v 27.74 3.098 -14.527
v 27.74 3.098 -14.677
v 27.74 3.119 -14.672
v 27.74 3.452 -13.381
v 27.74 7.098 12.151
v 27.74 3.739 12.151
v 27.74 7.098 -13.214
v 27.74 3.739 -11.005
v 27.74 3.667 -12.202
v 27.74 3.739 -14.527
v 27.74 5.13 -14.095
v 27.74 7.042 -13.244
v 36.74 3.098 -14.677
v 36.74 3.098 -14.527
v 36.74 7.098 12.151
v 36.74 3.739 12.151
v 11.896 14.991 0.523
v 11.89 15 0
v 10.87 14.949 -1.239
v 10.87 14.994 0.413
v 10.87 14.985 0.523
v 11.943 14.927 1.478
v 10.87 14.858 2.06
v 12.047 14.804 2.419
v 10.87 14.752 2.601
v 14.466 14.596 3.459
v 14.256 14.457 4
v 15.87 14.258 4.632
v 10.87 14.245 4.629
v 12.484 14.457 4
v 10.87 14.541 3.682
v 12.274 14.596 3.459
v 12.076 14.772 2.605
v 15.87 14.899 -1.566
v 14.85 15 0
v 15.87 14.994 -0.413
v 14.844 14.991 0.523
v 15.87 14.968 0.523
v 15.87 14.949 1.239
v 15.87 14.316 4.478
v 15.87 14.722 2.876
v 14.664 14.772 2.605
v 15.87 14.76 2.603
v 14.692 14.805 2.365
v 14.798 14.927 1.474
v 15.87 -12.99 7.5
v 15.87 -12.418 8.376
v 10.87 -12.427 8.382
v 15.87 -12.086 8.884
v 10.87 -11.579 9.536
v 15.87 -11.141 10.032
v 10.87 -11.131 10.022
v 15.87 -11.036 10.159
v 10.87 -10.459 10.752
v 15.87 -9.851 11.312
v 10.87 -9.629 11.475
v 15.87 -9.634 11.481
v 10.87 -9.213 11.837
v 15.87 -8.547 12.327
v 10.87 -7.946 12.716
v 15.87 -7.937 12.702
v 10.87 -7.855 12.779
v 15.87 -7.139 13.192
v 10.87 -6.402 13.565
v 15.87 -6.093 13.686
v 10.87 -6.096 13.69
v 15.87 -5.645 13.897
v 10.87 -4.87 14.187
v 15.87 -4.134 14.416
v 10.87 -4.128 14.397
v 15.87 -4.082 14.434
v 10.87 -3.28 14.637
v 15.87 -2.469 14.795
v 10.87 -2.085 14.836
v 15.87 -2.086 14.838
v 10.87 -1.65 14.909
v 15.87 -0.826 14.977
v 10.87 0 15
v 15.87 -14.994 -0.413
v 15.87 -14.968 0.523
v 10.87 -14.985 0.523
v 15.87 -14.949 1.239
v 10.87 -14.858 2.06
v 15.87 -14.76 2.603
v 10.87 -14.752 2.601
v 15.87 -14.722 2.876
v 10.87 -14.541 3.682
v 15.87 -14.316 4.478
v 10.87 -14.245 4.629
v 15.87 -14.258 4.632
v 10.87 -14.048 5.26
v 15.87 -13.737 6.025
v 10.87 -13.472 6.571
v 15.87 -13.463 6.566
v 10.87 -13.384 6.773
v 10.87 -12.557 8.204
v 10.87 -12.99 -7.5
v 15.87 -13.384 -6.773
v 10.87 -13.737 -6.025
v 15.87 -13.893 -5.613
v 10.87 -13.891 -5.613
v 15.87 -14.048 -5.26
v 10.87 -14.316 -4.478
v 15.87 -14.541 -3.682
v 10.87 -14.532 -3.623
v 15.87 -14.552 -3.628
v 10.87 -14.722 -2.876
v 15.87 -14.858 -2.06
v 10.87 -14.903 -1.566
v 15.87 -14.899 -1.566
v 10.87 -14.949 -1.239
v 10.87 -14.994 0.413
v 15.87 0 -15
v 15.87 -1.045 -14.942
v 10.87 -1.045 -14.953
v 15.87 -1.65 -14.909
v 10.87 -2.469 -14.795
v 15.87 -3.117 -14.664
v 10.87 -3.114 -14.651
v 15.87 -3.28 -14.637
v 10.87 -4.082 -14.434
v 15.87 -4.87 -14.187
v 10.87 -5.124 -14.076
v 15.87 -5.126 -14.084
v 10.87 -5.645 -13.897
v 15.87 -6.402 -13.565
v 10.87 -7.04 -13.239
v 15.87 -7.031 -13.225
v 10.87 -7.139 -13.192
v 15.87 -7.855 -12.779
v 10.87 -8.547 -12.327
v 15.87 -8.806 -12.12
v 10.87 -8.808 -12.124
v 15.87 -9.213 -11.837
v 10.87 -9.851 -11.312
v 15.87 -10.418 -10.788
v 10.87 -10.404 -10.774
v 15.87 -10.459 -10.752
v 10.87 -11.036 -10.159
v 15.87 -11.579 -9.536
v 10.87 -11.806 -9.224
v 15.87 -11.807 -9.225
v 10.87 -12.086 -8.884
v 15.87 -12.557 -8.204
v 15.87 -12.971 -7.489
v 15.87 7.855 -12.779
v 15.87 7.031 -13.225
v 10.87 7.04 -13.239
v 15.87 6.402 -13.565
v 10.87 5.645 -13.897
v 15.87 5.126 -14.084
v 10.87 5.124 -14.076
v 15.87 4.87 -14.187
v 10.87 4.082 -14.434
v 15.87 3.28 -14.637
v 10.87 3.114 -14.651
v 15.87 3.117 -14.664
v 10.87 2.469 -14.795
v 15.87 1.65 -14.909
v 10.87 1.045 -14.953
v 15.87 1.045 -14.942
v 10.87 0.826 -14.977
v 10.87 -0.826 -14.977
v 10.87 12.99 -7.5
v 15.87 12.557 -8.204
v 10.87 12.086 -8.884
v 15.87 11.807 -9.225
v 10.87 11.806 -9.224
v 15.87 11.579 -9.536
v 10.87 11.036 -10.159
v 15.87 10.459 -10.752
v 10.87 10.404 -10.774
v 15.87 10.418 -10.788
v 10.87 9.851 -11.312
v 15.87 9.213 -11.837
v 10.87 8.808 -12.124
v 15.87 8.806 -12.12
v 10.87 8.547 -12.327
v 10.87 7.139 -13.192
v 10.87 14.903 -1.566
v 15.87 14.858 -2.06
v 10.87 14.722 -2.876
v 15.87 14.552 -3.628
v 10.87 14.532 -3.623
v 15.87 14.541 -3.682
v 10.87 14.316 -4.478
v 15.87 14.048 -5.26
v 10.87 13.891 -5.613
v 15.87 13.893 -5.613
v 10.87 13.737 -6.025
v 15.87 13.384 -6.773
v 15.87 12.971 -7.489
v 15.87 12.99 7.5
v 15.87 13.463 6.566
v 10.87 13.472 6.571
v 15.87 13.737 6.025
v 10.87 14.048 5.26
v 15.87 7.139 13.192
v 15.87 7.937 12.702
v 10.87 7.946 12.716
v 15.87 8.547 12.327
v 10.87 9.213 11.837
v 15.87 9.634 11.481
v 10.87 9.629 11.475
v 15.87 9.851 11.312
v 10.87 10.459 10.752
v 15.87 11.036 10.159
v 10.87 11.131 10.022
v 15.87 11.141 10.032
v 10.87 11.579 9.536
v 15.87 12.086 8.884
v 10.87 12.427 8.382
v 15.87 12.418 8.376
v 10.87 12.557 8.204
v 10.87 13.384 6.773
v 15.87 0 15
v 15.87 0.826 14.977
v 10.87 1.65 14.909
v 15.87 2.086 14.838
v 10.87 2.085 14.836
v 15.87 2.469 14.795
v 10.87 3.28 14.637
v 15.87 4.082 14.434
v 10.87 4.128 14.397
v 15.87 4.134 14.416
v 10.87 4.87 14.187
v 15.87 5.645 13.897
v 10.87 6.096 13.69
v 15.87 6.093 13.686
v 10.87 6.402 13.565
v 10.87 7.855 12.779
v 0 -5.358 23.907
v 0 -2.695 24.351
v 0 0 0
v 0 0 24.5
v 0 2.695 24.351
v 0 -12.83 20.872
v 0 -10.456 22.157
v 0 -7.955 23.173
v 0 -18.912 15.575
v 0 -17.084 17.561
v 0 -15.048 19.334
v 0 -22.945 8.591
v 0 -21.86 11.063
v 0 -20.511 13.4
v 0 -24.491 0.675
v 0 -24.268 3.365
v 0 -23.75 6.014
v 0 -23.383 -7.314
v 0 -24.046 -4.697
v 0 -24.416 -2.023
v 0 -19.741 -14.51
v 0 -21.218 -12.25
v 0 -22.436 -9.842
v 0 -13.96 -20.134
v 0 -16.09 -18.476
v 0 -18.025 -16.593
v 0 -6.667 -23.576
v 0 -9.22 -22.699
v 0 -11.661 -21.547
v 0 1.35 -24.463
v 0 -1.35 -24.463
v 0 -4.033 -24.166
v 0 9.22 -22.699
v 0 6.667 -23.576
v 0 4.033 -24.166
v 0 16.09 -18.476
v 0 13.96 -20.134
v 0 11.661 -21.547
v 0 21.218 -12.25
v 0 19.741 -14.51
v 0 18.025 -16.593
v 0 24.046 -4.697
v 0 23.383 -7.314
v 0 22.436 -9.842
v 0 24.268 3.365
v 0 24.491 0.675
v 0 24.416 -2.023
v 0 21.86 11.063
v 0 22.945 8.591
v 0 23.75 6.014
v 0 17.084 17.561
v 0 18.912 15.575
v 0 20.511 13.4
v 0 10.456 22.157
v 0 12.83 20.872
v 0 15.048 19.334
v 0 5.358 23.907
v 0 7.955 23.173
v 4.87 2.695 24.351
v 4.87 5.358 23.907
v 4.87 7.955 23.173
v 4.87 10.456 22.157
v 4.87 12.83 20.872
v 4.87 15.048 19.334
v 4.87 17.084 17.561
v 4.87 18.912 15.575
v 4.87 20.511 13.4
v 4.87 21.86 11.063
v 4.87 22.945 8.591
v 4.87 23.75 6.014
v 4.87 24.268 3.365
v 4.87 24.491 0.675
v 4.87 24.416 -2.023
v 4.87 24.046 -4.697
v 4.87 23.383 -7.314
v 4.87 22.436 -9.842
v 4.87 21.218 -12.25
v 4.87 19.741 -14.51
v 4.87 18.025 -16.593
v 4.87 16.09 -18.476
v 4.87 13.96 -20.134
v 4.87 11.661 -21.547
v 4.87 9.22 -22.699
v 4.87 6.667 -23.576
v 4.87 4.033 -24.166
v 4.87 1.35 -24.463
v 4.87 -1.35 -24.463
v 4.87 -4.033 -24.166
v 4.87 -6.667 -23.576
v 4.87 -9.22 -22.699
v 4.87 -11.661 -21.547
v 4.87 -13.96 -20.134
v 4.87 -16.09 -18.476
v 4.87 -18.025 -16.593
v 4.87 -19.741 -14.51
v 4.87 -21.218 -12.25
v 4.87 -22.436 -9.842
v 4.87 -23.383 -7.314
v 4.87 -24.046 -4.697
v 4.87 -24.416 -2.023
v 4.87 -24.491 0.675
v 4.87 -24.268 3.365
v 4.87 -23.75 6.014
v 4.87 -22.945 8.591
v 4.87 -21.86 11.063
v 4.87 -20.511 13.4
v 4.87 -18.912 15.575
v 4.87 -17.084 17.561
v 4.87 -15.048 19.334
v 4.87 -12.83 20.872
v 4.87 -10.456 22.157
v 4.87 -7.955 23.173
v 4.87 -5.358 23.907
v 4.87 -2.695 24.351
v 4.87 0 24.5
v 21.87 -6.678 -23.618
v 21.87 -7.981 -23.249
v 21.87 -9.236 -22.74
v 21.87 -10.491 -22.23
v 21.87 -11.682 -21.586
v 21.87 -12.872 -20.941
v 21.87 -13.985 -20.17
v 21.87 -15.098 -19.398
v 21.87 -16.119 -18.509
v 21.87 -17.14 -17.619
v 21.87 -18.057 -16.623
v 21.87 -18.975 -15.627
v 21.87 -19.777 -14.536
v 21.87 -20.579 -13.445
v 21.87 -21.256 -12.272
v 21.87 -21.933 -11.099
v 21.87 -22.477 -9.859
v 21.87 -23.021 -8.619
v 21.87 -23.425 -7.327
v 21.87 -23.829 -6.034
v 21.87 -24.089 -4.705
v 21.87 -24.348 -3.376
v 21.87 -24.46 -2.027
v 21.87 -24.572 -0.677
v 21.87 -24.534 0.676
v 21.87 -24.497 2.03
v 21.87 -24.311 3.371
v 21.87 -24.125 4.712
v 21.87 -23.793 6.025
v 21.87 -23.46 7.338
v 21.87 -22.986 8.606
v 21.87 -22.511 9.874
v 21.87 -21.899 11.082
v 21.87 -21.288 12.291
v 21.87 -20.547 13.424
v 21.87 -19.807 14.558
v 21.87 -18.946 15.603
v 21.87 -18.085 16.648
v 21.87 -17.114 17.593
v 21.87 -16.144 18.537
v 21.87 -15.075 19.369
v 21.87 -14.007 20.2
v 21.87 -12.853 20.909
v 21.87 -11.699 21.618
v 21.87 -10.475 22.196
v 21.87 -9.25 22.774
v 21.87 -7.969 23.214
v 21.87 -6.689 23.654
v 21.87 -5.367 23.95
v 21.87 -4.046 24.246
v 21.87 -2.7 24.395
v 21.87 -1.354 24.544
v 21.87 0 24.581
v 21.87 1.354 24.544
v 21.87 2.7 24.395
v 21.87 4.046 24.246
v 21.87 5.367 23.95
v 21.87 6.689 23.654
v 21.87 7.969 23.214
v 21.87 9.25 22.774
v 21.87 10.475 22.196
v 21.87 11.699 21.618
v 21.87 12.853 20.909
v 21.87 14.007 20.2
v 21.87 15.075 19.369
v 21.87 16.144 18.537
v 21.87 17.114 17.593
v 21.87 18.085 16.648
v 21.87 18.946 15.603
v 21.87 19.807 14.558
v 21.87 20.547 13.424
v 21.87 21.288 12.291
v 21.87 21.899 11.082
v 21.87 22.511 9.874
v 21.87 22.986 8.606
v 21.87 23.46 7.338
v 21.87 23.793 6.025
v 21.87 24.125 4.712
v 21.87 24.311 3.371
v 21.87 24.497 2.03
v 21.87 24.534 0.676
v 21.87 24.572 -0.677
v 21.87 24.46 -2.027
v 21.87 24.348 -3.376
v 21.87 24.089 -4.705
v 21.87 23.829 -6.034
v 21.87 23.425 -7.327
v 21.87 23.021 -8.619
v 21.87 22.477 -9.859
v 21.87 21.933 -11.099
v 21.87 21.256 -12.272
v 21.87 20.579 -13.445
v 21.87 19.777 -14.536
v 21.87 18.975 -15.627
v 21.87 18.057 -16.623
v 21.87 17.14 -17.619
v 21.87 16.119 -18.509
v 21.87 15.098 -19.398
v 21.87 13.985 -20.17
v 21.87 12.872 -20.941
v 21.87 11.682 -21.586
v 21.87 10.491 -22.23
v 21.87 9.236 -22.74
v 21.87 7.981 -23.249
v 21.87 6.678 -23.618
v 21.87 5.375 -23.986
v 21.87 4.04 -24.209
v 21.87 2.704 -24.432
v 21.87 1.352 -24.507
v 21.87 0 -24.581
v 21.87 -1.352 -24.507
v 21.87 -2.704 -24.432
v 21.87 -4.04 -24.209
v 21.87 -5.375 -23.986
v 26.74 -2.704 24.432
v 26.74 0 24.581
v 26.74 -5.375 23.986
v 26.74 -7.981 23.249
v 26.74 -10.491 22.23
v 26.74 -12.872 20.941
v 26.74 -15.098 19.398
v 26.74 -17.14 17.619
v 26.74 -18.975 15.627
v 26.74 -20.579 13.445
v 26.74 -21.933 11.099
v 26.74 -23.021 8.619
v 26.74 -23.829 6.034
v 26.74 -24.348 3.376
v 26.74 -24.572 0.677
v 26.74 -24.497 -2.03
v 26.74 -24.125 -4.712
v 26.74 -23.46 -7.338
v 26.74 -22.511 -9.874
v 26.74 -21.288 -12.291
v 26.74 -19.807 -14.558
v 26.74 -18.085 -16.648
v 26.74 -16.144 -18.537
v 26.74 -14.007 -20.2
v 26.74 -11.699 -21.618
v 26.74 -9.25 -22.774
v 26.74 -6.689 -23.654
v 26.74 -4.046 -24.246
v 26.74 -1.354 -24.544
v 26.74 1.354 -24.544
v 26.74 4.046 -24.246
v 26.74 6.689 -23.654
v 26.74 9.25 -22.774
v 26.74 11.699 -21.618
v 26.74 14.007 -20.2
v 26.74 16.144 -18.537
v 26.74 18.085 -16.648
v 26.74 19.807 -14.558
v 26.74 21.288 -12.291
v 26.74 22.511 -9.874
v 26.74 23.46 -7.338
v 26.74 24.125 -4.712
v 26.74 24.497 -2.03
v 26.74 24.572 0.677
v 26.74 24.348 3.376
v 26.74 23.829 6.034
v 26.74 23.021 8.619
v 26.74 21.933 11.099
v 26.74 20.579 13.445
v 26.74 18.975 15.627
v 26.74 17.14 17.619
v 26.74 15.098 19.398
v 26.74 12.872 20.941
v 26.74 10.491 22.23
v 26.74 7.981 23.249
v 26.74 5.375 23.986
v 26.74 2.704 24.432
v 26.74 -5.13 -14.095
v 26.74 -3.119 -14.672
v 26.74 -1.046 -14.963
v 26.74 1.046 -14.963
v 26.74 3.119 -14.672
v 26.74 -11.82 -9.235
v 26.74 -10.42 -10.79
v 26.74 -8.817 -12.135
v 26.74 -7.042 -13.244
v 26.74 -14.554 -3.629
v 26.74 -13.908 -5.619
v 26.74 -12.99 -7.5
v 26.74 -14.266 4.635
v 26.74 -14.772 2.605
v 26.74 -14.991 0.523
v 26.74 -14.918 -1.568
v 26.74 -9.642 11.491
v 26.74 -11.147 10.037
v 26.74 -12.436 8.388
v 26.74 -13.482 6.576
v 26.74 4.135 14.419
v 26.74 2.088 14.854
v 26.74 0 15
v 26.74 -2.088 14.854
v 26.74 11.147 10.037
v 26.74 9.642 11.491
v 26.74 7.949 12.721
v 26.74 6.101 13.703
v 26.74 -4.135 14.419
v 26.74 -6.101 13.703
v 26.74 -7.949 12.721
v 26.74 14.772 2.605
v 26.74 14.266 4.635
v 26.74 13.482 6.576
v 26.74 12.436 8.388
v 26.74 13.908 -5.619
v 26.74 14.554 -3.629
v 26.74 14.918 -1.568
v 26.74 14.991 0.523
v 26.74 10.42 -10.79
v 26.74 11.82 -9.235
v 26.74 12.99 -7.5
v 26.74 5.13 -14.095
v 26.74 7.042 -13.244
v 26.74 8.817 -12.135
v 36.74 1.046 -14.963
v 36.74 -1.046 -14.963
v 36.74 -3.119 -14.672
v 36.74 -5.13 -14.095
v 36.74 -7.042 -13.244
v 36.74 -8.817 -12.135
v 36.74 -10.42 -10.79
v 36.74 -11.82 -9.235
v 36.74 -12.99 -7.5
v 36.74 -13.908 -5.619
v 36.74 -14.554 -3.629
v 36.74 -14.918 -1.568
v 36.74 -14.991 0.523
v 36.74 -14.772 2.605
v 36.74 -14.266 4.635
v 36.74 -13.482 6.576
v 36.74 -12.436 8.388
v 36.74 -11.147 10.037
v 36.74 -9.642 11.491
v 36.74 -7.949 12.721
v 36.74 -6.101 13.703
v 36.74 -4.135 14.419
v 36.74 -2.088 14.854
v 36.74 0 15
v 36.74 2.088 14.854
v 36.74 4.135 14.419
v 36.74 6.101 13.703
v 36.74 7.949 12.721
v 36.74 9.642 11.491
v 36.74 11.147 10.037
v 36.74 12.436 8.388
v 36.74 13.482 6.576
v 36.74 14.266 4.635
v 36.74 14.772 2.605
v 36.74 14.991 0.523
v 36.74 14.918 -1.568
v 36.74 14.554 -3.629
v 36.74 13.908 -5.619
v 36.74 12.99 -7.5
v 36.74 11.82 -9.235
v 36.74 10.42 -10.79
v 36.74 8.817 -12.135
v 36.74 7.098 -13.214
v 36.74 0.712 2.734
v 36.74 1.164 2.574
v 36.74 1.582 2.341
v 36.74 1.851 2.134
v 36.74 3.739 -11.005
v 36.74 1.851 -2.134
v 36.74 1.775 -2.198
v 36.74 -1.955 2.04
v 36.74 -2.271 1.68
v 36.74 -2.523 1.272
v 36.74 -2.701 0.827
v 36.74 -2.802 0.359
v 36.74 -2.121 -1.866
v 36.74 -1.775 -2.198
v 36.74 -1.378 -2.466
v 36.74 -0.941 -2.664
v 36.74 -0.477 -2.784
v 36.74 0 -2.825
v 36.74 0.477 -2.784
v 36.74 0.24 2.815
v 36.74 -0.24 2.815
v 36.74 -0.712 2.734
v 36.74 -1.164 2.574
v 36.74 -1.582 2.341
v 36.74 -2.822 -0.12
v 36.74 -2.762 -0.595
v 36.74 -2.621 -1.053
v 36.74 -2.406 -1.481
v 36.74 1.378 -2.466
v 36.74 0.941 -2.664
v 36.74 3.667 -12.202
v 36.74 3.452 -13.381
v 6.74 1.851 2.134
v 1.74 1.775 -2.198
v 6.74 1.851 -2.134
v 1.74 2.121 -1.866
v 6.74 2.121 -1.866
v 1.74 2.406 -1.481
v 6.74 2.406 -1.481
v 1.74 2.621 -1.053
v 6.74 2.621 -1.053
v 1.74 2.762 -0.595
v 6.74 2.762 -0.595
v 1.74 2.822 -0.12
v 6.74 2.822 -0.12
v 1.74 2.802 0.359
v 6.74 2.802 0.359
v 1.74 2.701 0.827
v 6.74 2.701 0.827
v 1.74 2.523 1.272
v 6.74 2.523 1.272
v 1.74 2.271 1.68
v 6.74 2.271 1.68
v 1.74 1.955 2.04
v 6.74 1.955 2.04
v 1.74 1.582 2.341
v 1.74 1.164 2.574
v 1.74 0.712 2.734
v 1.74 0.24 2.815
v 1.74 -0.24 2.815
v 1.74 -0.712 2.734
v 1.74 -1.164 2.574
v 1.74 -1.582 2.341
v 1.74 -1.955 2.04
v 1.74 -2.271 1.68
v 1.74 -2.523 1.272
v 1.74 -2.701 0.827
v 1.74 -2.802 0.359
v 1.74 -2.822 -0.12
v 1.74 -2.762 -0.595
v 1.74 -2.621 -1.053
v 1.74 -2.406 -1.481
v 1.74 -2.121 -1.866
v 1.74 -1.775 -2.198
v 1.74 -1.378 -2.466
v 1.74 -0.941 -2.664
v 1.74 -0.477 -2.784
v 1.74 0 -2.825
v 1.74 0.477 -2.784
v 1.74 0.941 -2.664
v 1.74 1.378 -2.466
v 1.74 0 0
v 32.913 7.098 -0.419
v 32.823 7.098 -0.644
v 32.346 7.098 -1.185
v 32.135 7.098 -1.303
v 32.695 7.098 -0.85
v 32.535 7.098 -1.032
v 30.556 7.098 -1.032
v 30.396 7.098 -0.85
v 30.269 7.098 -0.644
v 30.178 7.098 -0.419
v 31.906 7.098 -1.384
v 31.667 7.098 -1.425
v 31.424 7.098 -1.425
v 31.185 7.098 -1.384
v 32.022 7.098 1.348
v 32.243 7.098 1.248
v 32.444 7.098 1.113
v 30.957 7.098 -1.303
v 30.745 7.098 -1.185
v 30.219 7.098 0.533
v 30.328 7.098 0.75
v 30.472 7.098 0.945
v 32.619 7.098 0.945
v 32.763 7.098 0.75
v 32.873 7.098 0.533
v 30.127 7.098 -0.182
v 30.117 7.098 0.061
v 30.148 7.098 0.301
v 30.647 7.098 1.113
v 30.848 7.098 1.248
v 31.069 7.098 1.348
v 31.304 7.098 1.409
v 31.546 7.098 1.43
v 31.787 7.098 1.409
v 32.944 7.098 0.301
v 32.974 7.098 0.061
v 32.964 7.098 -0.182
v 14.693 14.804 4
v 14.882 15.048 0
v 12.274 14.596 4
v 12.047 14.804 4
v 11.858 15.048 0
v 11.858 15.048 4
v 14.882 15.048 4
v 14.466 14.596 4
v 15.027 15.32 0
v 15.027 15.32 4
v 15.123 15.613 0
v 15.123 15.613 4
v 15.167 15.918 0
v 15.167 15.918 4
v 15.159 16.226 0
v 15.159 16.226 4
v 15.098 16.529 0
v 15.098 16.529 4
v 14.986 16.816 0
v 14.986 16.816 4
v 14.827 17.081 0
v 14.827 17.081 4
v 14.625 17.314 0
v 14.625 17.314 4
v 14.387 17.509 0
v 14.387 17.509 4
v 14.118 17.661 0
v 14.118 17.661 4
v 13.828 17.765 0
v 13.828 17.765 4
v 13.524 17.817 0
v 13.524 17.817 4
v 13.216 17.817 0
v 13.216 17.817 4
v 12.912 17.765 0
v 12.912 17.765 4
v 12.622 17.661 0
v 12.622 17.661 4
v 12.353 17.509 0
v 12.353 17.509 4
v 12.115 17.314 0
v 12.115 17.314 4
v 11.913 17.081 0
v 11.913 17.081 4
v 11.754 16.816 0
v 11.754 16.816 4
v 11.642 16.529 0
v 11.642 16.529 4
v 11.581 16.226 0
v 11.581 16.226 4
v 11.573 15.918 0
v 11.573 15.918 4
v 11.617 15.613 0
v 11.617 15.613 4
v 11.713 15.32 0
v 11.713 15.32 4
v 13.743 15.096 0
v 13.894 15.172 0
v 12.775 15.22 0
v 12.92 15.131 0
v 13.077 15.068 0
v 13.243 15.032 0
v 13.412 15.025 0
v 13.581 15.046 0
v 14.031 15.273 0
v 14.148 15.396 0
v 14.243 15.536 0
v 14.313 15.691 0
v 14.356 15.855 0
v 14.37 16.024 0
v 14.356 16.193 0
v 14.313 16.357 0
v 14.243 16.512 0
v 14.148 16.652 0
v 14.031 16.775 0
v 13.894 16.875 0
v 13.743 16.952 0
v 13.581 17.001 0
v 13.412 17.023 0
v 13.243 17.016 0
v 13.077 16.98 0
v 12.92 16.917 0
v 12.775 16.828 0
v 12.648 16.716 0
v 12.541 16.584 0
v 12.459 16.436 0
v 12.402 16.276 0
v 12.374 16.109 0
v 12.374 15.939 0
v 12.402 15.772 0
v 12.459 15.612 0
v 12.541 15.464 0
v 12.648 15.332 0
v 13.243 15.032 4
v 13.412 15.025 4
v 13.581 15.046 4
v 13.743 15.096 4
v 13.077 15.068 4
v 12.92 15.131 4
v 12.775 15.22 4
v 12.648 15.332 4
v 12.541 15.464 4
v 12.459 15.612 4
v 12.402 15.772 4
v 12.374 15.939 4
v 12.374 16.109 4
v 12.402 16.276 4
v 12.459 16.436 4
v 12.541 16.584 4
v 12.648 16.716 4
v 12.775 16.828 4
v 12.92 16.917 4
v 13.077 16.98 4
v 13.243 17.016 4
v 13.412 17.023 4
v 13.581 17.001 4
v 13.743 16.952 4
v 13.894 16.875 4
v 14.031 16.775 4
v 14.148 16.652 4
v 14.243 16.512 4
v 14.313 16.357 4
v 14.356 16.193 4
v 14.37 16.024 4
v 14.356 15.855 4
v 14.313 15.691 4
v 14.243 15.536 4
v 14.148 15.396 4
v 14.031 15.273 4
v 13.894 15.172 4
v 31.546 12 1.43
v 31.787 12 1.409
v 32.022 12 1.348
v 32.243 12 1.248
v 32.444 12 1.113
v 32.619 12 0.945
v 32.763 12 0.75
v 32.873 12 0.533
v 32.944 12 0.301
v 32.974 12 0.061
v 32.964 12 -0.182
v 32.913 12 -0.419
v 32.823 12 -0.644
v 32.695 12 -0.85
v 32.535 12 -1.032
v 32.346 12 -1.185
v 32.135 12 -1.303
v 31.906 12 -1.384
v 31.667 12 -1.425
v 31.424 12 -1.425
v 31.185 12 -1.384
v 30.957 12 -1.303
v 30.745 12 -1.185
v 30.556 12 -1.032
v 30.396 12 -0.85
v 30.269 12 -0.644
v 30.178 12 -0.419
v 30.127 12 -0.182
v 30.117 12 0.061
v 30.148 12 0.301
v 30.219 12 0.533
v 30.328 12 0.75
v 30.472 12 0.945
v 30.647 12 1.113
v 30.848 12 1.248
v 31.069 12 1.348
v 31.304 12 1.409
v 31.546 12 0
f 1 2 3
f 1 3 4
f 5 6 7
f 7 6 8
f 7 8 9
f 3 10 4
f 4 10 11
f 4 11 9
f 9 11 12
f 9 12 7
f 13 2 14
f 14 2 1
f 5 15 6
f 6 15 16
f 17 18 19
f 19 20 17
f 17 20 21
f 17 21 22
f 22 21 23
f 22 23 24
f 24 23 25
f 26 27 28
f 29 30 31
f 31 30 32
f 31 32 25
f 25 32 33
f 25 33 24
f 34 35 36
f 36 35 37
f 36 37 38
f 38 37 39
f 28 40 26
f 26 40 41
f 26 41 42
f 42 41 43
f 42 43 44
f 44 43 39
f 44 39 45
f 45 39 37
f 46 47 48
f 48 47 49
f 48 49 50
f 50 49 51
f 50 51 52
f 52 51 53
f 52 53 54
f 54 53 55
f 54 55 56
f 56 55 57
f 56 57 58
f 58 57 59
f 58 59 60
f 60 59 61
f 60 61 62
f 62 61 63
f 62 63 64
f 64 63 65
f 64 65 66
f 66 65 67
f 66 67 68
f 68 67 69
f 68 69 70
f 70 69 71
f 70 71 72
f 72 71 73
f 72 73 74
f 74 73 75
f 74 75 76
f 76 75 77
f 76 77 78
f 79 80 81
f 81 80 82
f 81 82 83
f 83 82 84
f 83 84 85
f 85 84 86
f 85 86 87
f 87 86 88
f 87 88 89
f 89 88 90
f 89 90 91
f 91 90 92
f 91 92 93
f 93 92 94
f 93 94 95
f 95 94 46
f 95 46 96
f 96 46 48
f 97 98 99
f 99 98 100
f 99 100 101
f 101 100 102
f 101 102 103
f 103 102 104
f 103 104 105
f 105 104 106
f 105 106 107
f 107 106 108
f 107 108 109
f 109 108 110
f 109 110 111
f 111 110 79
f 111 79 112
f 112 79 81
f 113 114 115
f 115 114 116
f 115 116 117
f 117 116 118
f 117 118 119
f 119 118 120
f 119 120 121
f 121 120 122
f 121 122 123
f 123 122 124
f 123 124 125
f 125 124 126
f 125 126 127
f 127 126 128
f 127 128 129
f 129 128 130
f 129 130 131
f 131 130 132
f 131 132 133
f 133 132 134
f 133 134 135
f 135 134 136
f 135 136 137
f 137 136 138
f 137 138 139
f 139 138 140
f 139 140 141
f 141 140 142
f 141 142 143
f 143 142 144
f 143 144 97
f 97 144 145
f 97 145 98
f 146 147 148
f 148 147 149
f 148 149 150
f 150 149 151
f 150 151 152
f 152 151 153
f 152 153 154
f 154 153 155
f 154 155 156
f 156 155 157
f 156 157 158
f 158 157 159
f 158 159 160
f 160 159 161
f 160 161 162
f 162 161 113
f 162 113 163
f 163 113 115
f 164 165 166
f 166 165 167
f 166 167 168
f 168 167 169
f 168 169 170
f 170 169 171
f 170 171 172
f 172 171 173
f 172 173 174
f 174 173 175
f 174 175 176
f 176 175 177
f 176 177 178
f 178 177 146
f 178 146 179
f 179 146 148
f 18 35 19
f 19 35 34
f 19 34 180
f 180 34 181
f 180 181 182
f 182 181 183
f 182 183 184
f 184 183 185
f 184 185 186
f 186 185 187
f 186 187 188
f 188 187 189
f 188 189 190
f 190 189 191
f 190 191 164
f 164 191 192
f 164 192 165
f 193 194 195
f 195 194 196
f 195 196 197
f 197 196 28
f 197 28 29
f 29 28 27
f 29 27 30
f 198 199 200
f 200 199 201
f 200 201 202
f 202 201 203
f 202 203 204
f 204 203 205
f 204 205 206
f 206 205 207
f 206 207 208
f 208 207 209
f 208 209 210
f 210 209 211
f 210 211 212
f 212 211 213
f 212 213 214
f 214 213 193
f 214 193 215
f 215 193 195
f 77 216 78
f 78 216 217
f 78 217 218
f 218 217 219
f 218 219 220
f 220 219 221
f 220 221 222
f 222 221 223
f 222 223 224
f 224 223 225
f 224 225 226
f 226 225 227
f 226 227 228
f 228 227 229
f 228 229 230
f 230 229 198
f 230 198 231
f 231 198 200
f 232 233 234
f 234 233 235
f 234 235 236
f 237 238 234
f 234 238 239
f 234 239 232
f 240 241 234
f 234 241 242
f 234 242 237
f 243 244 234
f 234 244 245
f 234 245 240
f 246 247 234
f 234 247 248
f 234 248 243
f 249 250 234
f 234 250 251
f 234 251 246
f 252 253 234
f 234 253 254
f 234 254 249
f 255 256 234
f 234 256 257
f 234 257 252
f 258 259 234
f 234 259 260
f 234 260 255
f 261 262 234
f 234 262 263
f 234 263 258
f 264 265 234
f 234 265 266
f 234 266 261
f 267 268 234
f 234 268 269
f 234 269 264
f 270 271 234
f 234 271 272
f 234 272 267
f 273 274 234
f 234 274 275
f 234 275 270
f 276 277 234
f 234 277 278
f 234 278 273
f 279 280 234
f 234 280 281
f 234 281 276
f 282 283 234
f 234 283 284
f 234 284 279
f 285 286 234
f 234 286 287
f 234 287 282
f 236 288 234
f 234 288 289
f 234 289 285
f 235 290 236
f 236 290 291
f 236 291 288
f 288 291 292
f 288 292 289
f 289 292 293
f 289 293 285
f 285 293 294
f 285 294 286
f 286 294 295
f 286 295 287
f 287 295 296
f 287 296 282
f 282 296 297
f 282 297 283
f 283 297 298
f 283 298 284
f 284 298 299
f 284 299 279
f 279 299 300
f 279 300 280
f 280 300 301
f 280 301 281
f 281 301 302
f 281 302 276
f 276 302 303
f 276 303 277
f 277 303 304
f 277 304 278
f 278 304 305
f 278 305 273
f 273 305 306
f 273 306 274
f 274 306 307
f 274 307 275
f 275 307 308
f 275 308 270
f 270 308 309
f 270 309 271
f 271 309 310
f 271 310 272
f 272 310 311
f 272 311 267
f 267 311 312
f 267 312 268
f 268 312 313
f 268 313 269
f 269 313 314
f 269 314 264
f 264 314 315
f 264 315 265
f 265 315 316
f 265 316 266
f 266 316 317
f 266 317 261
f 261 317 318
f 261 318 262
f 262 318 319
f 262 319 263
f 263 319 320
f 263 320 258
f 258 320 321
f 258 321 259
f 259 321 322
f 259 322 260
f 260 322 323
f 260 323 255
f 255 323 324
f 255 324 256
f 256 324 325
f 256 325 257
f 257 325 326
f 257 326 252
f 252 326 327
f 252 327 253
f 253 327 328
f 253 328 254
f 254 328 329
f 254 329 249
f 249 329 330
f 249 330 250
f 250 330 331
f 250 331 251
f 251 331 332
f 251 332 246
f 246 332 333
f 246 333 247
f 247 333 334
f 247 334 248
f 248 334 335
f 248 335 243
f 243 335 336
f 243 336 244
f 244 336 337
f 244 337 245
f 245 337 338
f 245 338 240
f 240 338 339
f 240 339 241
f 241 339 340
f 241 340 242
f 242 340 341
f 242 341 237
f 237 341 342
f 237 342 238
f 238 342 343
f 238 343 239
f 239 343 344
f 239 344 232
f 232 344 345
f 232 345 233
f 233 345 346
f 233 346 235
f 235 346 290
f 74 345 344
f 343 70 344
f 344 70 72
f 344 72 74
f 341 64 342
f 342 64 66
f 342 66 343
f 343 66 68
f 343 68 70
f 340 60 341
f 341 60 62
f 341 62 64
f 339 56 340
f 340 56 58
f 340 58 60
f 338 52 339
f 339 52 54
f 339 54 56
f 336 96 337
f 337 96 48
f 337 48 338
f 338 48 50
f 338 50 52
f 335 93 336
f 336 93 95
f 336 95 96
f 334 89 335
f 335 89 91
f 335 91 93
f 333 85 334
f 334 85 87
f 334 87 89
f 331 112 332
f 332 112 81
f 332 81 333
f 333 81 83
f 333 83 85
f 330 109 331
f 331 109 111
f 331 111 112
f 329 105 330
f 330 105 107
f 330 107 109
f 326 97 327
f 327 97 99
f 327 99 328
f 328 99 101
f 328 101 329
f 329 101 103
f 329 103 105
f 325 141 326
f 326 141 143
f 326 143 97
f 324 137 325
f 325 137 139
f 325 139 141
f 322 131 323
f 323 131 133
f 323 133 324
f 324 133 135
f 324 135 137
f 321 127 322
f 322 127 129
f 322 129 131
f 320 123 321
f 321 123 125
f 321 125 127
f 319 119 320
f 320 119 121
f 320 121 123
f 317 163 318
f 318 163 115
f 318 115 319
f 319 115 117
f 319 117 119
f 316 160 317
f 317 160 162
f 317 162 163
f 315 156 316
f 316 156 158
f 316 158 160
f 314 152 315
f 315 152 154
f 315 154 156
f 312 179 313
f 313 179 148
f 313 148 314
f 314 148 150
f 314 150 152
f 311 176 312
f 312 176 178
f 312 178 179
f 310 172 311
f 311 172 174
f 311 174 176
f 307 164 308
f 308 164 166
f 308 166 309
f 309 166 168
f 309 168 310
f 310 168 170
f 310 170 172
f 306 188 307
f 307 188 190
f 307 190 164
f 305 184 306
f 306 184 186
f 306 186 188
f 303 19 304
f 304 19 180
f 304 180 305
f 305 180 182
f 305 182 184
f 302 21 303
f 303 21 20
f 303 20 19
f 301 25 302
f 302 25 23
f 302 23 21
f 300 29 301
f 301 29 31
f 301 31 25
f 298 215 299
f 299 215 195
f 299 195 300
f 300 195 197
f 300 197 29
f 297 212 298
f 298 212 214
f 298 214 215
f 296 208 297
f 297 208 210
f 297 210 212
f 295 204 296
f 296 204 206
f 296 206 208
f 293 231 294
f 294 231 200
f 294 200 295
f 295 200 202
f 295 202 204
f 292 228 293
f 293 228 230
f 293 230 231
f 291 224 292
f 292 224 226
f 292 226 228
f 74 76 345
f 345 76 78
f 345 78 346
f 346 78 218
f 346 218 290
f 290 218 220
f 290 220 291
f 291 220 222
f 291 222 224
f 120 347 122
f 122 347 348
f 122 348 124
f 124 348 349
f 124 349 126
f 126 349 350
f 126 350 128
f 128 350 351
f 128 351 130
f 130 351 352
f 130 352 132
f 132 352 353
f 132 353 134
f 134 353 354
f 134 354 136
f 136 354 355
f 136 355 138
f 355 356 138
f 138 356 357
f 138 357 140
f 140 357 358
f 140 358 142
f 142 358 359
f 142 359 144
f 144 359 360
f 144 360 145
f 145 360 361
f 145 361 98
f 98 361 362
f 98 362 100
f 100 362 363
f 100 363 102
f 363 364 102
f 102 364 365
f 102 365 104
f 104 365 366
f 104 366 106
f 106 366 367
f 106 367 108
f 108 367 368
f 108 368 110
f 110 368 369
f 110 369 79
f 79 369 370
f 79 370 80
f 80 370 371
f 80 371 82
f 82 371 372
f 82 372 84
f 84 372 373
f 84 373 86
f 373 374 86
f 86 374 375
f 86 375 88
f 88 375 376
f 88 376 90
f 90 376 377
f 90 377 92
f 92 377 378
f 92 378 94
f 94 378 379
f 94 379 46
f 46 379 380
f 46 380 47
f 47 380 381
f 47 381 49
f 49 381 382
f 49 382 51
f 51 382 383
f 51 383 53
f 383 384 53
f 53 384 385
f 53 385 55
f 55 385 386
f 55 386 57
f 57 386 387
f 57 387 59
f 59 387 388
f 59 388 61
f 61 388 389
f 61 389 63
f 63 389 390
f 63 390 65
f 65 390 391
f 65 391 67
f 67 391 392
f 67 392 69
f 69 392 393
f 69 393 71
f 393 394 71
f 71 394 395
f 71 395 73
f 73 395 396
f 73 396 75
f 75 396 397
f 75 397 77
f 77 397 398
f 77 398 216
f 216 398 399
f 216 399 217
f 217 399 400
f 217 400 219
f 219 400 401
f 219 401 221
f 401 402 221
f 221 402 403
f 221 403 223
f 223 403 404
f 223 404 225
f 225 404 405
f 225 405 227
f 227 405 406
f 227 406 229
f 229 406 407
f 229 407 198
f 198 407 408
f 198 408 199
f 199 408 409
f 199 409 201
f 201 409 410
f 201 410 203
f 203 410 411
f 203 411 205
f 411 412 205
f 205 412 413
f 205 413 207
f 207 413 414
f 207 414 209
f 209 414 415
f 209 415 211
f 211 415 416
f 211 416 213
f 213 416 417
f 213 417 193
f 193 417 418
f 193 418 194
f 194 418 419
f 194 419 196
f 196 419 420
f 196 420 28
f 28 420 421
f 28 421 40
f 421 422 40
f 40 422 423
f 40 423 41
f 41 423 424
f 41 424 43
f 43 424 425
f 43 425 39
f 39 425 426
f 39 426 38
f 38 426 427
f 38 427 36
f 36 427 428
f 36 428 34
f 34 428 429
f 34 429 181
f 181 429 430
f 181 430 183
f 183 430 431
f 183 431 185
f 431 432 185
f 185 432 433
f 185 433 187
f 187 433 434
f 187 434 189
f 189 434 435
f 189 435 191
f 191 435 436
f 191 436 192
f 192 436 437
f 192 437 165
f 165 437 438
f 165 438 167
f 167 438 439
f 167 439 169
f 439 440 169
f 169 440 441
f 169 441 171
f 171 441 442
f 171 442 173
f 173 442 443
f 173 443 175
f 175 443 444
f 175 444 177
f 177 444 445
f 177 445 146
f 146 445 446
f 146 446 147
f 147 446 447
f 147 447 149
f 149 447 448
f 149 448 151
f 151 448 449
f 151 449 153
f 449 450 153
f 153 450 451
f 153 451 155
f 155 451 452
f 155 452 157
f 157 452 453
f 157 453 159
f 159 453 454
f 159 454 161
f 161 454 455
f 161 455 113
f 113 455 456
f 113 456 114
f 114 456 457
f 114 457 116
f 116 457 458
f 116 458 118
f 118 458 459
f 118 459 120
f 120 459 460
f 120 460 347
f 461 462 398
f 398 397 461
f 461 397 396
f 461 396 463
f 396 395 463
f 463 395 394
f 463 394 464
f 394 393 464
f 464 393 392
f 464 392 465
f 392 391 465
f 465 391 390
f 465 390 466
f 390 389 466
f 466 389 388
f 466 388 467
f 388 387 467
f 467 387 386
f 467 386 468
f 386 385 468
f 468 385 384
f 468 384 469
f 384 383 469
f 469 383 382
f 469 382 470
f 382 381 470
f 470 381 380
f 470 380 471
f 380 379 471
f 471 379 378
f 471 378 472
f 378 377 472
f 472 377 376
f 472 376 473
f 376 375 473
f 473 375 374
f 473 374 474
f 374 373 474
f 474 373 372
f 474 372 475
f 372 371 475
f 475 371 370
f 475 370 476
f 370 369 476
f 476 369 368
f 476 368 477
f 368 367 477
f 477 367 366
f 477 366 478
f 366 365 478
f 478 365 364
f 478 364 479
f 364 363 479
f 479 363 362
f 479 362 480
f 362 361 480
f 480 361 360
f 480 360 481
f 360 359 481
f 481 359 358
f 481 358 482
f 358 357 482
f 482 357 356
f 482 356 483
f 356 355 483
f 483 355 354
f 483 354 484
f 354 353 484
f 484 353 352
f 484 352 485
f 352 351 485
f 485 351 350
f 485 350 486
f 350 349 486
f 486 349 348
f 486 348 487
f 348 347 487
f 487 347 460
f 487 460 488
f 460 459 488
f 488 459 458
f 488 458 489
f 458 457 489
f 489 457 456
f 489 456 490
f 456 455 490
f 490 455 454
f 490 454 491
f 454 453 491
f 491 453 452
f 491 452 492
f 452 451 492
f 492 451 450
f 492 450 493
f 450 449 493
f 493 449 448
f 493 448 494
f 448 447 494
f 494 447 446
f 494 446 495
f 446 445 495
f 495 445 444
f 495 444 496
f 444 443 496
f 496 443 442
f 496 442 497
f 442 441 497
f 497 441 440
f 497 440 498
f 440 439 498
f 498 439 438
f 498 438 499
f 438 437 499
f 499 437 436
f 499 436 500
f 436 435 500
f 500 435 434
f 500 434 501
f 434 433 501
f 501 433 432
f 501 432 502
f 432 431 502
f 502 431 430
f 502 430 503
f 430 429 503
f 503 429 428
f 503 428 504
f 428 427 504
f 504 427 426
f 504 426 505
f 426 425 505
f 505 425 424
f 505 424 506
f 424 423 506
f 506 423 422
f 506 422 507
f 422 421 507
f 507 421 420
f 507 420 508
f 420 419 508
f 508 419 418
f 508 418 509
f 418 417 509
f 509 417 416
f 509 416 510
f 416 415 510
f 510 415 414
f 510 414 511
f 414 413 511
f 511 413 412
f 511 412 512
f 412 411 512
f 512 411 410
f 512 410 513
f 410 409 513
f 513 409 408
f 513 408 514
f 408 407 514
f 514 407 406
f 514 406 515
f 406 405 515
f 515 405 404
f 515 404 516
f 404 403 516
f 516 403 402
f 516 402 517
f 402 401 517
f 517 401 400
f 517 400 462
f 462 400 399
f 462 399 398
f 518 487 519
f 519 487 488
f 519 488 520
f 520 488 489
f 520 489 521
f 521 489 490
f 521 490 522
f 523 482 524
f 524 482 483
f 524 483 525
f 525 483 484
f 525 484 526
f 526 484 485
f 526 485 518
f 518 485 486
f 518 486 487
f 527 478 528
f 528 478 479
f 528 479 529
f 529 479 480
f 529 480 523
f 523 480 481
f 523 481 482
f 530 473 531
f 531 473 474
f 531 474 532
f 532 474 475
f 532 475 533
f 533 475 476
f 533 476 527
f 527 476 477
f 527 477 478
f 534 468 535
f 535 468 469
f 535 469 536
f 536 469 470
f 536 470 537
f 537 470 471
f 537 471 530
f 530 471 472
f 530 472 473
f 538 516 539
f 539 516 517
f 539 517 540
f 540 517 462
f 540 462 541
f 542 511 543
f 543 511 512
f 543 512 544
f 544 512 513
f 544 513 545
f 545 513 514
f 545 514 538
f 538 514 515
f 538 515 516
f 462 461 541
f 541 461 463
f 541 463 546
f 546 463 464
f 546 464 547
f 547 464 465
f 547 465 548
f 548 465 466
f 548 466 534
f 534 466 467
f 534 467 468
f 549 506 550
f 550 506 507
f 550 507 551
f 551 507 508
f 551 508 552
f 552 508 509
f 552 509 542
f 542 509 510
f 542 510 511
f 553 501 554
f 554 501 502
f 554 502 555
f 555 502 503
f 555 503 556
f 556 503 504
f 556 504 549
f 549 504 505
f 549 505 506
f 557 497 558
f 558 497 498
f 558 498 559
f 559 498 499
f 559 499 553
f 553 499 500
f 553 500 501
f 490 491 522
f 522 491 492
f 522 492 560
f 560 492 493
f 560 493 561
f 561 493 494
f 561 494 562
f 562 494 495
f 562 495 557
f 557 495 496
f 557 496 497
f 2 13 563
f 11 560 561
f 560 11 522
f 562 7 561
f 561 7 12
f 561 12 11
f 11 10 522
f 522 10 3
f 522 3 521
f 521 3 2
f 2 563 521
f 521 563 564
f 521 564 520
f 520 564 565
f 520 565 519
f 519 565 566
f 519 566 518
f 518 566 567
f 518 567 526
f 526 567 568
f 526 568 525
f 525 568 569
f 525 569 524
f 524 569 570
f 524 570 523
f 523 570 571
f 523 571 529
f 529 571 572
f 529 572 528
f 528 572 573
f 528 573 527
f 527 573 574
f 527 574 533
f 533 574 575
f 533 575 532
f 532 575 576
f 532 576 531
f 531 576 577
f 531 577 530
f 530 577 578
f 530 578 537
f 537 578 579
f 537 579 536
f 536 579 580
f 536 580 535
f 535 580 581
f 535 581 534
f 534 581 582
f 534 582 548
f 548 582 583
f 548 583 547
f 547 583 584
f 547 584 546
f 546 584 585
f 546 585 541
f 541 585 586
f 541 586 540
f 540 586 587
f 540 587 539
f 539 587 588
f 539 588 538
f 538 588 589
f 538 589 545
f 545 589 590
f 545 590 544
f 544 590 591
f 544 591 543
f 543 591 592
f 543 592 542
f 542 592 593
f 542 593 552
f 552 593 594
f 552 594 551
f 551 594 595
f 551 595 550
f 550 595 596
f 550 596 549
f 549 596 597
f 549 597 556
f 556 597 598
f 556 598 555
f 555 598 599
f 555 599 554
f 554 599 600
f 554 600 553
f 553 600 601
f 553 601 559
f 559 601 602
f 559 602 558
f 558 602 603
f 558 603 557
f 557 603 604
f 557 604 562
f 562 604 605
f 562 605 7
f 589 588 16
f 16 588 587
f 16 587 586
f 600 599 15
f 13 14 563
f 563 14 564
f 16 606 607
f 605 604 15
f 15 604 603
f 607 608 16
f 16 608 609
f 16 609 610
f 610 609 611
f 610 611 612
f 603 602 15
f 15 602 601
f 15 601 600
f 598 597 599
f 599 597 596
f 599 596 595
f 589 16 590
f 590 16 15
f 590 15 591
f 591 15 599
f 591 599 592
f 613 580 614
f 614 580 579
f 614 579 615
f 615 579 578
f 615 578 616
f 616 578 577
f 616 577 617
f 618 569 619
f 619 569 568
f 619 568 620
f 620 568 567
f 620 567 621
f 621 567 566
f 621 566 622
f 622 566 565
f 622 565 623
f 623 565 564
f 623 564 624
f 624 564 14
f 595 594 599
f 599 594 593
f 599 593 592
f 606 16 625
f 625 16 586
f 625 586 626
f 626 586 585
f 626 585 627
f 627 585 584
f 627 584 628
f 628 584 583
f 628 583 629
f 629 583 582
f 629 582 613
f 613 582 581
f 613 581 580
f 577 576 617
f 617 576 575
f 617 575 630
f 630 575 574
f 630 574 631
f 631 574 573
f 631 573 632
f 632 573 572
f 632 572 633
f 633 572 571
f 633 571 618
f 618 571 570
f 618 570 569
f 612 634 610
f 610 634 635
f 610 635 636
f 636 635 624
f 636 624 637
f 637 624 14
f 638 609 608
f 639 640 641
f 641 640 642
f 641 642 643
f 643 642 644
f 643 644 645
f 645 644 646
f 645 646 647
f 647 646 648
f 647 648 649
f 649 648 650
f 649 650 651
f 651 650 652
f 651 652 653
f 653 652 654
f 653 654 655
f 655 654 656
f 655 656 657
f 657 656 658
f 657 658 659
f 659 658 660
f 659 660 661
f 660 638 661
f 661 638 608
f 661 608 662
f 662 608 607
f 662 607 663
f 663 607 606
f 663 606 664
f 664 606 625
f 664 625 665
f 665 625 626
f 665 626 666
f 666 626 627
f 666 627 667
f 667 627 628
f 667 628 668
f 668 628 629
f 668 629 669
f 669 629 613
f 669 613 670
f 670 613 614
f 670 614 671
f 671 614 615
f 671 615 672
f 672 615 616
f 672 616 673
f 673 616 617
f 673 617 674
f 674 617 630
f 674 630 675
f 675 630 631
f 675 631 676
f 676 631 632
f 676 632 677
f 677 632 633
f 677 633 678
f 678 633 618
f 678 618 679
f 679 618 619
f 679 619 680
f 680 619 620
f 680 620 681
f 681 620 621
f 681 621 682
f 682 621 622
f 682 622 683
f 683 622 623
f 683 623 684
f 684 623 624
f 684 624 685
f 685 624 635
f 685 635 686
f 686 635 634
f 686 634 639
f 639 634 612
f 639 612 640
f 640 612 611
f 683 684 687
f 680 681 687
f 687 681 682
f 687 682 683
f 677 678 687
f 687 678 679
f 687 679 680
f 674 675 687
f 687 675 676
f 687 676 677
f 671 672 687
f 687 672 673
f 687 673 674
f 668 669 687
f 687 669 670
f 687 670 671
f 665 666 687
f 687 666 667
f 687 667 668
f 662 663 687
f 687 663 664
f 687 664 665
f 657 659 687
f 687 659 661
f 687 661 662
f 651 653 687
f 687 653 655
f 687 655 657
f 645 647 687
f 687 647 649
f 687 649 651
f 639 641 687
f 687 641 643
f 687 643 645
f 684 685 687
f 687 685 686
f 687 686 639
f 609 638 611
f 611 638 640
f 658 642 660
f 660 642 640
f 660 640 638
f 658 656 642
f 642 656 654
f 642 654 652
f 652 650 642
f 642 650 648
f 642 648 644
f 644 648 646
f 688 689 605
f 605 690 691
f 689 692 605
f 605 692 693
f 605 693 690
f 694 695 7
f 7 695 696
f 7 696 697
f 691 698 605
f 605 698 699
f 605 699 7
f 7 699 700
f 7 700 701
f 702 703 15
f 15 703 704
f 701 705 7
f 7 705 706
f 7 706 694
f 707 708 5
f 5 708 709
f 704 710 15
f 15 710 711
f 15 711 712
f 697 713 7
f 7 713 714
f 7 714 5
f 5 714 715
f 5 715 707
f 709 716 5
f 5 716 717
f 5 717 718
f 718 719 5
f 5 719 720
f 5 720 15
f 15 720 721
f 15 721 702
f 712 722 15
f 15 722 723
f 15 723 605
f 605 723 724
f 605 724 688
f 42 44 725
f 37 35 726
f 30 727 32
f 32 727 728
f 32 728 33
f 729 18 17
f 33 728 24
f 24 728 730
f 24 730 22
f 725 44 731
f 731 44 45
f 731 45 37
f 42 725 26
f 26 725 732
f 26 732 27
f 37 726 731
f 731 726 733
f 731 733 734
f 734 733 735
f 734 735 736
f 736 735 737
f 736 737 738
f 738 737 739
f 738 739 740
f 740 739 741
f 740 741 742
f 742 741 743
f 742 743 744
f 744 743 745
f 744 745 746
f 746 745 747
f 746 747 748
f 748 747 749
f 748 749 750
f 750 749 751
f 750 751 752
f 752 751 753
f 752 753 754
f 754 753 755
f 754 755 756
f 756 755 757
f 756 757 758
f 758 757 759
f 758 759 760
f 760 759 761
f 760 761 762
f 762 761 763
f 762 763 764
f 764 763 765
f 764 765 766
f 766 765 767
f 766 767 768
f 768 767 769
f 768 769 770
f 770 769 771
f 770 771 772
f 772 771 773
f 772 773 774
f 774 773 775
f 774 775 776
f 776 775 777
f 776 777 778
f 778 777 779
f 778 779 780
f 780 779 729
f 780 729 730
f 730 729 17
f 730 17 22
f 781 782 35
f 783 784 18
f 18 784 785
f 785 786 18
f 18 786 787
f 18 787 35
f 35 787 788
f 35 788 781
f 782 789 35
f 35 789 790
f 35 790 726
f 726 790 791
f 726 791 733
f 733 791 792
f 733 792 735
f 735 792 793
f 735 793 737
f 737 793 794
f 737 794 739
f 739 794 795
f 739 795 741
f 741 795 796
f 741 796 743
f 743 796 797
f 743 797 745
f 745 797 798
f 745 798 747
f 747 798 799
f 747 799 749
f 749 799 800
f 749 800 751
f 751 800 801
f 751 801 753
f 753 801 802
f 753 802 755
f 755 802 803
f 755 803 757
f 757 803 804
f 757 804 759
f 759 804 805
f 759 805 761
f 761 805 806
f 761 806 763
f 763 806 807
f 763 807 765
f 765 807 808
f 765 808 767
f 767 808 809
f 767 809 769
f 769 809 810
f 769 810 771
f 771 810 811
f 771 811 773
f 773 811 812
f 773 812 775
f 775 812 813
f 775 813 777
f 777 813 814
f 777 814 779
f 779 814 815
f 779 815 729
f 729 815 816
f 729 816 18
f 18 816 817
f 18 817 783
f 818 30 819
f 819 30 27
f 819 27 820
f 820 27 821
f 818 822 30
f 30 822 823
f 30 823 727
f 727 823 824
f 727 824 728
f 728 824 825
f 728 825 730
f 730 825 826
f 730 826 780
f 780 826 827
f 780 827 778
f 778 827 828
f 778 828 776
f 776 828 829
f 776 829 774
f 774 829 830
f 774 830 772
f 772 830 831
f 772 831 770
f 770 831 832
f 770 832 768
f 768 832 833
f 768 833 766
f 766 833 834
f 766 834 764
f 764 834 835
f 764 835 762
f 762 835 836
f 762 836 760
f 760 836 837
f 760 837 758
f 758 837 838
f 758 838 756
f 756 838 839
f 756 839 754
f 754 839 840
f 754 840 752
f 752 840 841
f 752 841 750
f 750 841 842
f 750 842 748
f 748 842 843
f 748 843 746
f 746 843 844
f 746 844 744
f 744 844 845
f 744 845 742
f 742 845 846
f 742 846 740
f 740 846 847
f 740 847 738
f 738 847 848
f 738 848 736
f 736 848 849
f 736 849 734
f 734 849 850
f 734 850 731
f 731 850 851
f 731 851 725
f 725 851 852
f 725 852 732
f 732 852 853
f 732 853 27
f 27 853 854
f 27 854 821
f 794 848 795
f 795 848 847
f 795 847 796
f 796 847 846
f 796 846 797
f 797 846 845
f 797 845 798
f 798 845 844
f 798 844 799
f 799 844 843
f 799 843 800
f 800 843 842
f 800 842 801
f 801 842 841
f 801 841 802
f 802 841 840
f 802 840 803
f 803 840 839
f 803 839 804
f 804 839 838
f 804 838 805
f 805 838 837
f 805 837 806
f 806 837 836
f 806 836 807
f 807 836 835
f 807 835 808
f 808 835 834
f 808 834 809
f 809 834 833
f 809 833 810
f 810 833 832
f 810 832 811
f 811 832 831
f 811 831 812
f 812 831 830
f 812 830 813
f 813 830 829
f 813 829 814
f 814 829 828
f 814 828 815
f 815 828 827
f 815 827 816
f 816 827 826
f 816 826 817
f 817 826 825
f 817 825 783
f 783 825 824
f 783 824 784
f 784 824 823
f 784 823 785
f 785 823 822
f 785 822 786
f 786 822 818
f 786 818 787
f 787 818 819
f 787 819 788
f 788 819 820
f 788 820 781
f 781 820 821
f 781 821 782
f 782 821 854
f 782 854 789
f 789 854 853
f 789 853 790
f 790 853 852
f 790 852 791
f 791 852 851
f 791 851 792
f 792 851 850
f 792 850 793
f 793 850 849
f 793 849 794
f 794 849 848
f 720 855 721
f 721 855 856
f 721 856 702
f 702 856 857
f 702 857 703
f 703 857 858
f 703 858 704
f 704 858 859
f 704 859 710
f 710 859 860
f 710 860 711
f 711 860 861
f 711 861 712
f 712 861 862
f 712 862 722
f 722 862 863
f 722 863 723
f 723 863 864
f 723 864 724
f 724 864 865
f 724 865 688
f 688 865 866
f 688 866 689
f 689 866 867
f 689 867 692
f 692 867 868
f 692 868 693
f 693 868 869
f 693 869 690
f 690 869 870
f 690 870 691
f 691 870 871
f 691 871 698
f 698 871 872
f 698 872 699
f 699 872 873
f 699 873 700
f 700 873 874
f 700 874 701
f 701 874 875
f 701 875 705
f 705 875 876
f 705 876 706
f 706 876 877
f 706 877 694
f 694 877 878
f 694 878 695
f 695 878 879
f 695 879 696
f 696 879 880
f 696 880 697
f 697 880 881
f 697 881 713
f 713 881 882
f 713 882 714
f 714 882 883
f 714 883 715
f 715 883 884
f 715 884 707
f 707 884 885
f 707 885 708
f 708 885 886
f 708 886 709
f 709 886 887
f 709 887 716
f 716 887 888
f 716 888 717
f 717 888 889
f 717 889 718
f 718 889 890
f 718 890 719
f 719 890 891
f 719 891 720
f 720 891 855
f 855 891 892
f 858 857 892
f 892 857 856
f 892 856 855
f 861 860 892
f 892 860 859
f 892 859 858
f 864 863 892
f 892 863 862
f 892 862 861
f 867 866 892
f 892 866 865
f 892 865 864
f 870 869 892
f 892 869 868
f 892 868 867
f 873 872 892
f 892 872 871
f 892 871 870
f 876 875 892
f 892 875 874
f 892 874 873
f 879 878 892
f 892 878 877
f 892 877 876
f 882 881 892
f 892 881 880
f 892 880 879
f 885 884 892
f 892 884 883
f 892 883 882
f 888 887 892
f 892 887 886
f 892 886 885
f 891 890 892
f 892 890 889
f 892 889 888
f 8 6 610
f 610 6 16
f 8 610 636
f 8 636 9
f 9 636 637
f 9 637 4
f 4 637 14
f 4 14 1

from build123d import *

# Parameters (mm, degrees)
SKETCH_3_R           = 2.825
CUT_EXTRUDE_2_DEPTH  = 35
SKETCH_16_W          = 5.008881277
SKETCH_16_H          = 1
EXTRUDE_2_DEPTH      = 30
SKETCH_19_W          = 0.959066555
SKETCH_19_H          = 0.511502163
EXTRUDE_3_DEPTH      = 30
SKETCH_24_W          = 26.827602514
SKETCH_24_H          = 4
CUT_EXTRUDE_8_DEPTH  = 9
EXTRUDE_1_DEPTH      = 2
EXTRUDE_1_DEPTH_BACK = 2
SKETCH_26_R          = 1.8
SKETCH_26_R_2        = 1
SKETCH_27_R          = 1.43
CUT_EXTRUDE_9_DEPTH  = 7
SKETCH_28_W          = 26.67763166
SKETCH_28_H          = 0.640570548
EXTRUDE_4_DEPTH      = 9
FILLET_1_R           = 10


with BuildPart() as part:
    # 草圖1 → 旋轉1 (revolve)
    with BuildSketch(Plane.XY, mode=Mode.PRIVATE) as revolve_1_sk:
        Polygon((0, 0), (0, 24.5), (4.87, 24.5), (10.87, 15), (15.87, 15), (21.87, 24.581141553), (26.74, 24.581141553), (26.74, 15), (36.74, 15), (36.74, 0), align=None)
    revolve(revolve_1_sk.sketch.rotate(Axis((-743.15639781, 0, 0), (1, 0, 0)), 90), axis=Axis((-743.15639781, 0, 0), (1, 0, 0)))

    # 草圖3 → 除料-伸長2 (cut)
    with BuildSketch(Plane(origin=(36.74, 0, 0), x_dir=(0, 0, -1), z_dir=(1, 0, 0))):
        Circle(SKETCH_3_R)
    extrude(amount=-CUT_EXTRUDE_2_DEPTH, mode=Mode.SUBTRACT)

    # 草圖16 → 填料-伸長2 (add)
    with BuildSketch(Plane(origin=(36.74, 0, 0), x_dir=(0, 0, -1), z_dir=(1, 0, 0))):
        with Locations((-0.105543204, 2.350977924)):
            Rectangle(SKETCH_16_W, SKETCH_16_H)
    extrude(amount=-EXTRUDE_2_DEPTH)

    # 草圖19 → 填料-伸長3 (add)
    with BuildSketch(Plane(origin=(36.74, 0, 0), x_dir=(0, 0, -1), z_dir=(1, 0, 0))):
        with Locations((-0.084116996, 2.673942601)):
            Rectangle(SKETCH_19_W, SKETCH_19_H)
    extrude(amount=-EXTRUDE_3_DEPTH)

    # 草圖24 → 除料-伸長8 (cut)
    with BuildSketch(Plane(origin=(36.74, 0, 0), x_dir=(0, 0, -1), z_dir=(1, 0, 0))):
        with Locations((1.262741112, 5.098242099)):
            Rectangle(SKETCH_24_W, SKETCH_24_H)
    extrude(amount=-CUT_EXTRUDE_8_DEPTH, mode=Mode.SUBTRACT)

    # 草圖26 → 伸長-薄件1 (add, two sides: drawn at the far end of the back side and taken through both)
    with BuildSketch(Plane.XY.offset(2).offset(-EXTRUDE_1_DEPTH_BACK)):
        with Locations((13.37, 16.023837481)):
            Circle(SKETCH_26_R)
        with Locations((13.37, 16.023837481)):
            Circle(SKETCH_26_R_2, mode=Mode.SUBTRACT)
    extrude(amount=EXTRUDE_1_DEPTH + EXTRUDE_1_DEPTH_BACK)

    # 草圖27 → 除料-伸長9 (cut)
    with BuildSketch(Plane(origin=(0, 12, 0), x_dir=(1, 0, 0), z_dir=(0, 1, 0))):
        with Locations(Location((31.545667046, 0, 0), (0, 0, 270))):
            Circle(SKETCH_27_R)
    extrude(amount=-CUT_EXTRUDE_9_DEPTH, mode=Mode.SUBTRACT)

    # 草圖28 → 填料-伸長4 (add)
    with BuildSketch(Plane(origin=(27.74, 0, 0), x_dir=(0, 0, -1), z_dir=(1, 0, 0))):
        with Locations((1.187755685, 3.418527373)):
            Rectangle(SKETCH_28_W, SKETCH_28_H)
    extrude(amount=EXTRUDE_4_DEPTH)

    # 圓角1
    # the kernel refuses this fillet: 10 mm, written as the material it takes off along each edge
    with BuildSketch(Plane(origin=(27.74, 3.738812647, -14.526571515), x_dir=(0, -1, 0), z_dir=(1, 0, 0))) as fillet_1_piece_1:
        with BuildLine():
            CenterArc((10, -3.521516765), FILLET_1_R, 159.381022137, 20.618977863)
            Line((0, -3.521516765), (-0.2, -3.521516765))
            Line((-0.2, -3.521516765), (-0.2, 0))
            Line((-0.2, 0), (0, 0.2))
            ThreePointArc((0, 0.2), (0.320285274, 0.2), (0.453381959, 0.070430335))
            Line((0.453381959, 0.070430335), (0.640570548, 0))
        make_face()
    extrude(amount=17.803791913, mode=Mode.SUBTRACT)


solid = part.part
